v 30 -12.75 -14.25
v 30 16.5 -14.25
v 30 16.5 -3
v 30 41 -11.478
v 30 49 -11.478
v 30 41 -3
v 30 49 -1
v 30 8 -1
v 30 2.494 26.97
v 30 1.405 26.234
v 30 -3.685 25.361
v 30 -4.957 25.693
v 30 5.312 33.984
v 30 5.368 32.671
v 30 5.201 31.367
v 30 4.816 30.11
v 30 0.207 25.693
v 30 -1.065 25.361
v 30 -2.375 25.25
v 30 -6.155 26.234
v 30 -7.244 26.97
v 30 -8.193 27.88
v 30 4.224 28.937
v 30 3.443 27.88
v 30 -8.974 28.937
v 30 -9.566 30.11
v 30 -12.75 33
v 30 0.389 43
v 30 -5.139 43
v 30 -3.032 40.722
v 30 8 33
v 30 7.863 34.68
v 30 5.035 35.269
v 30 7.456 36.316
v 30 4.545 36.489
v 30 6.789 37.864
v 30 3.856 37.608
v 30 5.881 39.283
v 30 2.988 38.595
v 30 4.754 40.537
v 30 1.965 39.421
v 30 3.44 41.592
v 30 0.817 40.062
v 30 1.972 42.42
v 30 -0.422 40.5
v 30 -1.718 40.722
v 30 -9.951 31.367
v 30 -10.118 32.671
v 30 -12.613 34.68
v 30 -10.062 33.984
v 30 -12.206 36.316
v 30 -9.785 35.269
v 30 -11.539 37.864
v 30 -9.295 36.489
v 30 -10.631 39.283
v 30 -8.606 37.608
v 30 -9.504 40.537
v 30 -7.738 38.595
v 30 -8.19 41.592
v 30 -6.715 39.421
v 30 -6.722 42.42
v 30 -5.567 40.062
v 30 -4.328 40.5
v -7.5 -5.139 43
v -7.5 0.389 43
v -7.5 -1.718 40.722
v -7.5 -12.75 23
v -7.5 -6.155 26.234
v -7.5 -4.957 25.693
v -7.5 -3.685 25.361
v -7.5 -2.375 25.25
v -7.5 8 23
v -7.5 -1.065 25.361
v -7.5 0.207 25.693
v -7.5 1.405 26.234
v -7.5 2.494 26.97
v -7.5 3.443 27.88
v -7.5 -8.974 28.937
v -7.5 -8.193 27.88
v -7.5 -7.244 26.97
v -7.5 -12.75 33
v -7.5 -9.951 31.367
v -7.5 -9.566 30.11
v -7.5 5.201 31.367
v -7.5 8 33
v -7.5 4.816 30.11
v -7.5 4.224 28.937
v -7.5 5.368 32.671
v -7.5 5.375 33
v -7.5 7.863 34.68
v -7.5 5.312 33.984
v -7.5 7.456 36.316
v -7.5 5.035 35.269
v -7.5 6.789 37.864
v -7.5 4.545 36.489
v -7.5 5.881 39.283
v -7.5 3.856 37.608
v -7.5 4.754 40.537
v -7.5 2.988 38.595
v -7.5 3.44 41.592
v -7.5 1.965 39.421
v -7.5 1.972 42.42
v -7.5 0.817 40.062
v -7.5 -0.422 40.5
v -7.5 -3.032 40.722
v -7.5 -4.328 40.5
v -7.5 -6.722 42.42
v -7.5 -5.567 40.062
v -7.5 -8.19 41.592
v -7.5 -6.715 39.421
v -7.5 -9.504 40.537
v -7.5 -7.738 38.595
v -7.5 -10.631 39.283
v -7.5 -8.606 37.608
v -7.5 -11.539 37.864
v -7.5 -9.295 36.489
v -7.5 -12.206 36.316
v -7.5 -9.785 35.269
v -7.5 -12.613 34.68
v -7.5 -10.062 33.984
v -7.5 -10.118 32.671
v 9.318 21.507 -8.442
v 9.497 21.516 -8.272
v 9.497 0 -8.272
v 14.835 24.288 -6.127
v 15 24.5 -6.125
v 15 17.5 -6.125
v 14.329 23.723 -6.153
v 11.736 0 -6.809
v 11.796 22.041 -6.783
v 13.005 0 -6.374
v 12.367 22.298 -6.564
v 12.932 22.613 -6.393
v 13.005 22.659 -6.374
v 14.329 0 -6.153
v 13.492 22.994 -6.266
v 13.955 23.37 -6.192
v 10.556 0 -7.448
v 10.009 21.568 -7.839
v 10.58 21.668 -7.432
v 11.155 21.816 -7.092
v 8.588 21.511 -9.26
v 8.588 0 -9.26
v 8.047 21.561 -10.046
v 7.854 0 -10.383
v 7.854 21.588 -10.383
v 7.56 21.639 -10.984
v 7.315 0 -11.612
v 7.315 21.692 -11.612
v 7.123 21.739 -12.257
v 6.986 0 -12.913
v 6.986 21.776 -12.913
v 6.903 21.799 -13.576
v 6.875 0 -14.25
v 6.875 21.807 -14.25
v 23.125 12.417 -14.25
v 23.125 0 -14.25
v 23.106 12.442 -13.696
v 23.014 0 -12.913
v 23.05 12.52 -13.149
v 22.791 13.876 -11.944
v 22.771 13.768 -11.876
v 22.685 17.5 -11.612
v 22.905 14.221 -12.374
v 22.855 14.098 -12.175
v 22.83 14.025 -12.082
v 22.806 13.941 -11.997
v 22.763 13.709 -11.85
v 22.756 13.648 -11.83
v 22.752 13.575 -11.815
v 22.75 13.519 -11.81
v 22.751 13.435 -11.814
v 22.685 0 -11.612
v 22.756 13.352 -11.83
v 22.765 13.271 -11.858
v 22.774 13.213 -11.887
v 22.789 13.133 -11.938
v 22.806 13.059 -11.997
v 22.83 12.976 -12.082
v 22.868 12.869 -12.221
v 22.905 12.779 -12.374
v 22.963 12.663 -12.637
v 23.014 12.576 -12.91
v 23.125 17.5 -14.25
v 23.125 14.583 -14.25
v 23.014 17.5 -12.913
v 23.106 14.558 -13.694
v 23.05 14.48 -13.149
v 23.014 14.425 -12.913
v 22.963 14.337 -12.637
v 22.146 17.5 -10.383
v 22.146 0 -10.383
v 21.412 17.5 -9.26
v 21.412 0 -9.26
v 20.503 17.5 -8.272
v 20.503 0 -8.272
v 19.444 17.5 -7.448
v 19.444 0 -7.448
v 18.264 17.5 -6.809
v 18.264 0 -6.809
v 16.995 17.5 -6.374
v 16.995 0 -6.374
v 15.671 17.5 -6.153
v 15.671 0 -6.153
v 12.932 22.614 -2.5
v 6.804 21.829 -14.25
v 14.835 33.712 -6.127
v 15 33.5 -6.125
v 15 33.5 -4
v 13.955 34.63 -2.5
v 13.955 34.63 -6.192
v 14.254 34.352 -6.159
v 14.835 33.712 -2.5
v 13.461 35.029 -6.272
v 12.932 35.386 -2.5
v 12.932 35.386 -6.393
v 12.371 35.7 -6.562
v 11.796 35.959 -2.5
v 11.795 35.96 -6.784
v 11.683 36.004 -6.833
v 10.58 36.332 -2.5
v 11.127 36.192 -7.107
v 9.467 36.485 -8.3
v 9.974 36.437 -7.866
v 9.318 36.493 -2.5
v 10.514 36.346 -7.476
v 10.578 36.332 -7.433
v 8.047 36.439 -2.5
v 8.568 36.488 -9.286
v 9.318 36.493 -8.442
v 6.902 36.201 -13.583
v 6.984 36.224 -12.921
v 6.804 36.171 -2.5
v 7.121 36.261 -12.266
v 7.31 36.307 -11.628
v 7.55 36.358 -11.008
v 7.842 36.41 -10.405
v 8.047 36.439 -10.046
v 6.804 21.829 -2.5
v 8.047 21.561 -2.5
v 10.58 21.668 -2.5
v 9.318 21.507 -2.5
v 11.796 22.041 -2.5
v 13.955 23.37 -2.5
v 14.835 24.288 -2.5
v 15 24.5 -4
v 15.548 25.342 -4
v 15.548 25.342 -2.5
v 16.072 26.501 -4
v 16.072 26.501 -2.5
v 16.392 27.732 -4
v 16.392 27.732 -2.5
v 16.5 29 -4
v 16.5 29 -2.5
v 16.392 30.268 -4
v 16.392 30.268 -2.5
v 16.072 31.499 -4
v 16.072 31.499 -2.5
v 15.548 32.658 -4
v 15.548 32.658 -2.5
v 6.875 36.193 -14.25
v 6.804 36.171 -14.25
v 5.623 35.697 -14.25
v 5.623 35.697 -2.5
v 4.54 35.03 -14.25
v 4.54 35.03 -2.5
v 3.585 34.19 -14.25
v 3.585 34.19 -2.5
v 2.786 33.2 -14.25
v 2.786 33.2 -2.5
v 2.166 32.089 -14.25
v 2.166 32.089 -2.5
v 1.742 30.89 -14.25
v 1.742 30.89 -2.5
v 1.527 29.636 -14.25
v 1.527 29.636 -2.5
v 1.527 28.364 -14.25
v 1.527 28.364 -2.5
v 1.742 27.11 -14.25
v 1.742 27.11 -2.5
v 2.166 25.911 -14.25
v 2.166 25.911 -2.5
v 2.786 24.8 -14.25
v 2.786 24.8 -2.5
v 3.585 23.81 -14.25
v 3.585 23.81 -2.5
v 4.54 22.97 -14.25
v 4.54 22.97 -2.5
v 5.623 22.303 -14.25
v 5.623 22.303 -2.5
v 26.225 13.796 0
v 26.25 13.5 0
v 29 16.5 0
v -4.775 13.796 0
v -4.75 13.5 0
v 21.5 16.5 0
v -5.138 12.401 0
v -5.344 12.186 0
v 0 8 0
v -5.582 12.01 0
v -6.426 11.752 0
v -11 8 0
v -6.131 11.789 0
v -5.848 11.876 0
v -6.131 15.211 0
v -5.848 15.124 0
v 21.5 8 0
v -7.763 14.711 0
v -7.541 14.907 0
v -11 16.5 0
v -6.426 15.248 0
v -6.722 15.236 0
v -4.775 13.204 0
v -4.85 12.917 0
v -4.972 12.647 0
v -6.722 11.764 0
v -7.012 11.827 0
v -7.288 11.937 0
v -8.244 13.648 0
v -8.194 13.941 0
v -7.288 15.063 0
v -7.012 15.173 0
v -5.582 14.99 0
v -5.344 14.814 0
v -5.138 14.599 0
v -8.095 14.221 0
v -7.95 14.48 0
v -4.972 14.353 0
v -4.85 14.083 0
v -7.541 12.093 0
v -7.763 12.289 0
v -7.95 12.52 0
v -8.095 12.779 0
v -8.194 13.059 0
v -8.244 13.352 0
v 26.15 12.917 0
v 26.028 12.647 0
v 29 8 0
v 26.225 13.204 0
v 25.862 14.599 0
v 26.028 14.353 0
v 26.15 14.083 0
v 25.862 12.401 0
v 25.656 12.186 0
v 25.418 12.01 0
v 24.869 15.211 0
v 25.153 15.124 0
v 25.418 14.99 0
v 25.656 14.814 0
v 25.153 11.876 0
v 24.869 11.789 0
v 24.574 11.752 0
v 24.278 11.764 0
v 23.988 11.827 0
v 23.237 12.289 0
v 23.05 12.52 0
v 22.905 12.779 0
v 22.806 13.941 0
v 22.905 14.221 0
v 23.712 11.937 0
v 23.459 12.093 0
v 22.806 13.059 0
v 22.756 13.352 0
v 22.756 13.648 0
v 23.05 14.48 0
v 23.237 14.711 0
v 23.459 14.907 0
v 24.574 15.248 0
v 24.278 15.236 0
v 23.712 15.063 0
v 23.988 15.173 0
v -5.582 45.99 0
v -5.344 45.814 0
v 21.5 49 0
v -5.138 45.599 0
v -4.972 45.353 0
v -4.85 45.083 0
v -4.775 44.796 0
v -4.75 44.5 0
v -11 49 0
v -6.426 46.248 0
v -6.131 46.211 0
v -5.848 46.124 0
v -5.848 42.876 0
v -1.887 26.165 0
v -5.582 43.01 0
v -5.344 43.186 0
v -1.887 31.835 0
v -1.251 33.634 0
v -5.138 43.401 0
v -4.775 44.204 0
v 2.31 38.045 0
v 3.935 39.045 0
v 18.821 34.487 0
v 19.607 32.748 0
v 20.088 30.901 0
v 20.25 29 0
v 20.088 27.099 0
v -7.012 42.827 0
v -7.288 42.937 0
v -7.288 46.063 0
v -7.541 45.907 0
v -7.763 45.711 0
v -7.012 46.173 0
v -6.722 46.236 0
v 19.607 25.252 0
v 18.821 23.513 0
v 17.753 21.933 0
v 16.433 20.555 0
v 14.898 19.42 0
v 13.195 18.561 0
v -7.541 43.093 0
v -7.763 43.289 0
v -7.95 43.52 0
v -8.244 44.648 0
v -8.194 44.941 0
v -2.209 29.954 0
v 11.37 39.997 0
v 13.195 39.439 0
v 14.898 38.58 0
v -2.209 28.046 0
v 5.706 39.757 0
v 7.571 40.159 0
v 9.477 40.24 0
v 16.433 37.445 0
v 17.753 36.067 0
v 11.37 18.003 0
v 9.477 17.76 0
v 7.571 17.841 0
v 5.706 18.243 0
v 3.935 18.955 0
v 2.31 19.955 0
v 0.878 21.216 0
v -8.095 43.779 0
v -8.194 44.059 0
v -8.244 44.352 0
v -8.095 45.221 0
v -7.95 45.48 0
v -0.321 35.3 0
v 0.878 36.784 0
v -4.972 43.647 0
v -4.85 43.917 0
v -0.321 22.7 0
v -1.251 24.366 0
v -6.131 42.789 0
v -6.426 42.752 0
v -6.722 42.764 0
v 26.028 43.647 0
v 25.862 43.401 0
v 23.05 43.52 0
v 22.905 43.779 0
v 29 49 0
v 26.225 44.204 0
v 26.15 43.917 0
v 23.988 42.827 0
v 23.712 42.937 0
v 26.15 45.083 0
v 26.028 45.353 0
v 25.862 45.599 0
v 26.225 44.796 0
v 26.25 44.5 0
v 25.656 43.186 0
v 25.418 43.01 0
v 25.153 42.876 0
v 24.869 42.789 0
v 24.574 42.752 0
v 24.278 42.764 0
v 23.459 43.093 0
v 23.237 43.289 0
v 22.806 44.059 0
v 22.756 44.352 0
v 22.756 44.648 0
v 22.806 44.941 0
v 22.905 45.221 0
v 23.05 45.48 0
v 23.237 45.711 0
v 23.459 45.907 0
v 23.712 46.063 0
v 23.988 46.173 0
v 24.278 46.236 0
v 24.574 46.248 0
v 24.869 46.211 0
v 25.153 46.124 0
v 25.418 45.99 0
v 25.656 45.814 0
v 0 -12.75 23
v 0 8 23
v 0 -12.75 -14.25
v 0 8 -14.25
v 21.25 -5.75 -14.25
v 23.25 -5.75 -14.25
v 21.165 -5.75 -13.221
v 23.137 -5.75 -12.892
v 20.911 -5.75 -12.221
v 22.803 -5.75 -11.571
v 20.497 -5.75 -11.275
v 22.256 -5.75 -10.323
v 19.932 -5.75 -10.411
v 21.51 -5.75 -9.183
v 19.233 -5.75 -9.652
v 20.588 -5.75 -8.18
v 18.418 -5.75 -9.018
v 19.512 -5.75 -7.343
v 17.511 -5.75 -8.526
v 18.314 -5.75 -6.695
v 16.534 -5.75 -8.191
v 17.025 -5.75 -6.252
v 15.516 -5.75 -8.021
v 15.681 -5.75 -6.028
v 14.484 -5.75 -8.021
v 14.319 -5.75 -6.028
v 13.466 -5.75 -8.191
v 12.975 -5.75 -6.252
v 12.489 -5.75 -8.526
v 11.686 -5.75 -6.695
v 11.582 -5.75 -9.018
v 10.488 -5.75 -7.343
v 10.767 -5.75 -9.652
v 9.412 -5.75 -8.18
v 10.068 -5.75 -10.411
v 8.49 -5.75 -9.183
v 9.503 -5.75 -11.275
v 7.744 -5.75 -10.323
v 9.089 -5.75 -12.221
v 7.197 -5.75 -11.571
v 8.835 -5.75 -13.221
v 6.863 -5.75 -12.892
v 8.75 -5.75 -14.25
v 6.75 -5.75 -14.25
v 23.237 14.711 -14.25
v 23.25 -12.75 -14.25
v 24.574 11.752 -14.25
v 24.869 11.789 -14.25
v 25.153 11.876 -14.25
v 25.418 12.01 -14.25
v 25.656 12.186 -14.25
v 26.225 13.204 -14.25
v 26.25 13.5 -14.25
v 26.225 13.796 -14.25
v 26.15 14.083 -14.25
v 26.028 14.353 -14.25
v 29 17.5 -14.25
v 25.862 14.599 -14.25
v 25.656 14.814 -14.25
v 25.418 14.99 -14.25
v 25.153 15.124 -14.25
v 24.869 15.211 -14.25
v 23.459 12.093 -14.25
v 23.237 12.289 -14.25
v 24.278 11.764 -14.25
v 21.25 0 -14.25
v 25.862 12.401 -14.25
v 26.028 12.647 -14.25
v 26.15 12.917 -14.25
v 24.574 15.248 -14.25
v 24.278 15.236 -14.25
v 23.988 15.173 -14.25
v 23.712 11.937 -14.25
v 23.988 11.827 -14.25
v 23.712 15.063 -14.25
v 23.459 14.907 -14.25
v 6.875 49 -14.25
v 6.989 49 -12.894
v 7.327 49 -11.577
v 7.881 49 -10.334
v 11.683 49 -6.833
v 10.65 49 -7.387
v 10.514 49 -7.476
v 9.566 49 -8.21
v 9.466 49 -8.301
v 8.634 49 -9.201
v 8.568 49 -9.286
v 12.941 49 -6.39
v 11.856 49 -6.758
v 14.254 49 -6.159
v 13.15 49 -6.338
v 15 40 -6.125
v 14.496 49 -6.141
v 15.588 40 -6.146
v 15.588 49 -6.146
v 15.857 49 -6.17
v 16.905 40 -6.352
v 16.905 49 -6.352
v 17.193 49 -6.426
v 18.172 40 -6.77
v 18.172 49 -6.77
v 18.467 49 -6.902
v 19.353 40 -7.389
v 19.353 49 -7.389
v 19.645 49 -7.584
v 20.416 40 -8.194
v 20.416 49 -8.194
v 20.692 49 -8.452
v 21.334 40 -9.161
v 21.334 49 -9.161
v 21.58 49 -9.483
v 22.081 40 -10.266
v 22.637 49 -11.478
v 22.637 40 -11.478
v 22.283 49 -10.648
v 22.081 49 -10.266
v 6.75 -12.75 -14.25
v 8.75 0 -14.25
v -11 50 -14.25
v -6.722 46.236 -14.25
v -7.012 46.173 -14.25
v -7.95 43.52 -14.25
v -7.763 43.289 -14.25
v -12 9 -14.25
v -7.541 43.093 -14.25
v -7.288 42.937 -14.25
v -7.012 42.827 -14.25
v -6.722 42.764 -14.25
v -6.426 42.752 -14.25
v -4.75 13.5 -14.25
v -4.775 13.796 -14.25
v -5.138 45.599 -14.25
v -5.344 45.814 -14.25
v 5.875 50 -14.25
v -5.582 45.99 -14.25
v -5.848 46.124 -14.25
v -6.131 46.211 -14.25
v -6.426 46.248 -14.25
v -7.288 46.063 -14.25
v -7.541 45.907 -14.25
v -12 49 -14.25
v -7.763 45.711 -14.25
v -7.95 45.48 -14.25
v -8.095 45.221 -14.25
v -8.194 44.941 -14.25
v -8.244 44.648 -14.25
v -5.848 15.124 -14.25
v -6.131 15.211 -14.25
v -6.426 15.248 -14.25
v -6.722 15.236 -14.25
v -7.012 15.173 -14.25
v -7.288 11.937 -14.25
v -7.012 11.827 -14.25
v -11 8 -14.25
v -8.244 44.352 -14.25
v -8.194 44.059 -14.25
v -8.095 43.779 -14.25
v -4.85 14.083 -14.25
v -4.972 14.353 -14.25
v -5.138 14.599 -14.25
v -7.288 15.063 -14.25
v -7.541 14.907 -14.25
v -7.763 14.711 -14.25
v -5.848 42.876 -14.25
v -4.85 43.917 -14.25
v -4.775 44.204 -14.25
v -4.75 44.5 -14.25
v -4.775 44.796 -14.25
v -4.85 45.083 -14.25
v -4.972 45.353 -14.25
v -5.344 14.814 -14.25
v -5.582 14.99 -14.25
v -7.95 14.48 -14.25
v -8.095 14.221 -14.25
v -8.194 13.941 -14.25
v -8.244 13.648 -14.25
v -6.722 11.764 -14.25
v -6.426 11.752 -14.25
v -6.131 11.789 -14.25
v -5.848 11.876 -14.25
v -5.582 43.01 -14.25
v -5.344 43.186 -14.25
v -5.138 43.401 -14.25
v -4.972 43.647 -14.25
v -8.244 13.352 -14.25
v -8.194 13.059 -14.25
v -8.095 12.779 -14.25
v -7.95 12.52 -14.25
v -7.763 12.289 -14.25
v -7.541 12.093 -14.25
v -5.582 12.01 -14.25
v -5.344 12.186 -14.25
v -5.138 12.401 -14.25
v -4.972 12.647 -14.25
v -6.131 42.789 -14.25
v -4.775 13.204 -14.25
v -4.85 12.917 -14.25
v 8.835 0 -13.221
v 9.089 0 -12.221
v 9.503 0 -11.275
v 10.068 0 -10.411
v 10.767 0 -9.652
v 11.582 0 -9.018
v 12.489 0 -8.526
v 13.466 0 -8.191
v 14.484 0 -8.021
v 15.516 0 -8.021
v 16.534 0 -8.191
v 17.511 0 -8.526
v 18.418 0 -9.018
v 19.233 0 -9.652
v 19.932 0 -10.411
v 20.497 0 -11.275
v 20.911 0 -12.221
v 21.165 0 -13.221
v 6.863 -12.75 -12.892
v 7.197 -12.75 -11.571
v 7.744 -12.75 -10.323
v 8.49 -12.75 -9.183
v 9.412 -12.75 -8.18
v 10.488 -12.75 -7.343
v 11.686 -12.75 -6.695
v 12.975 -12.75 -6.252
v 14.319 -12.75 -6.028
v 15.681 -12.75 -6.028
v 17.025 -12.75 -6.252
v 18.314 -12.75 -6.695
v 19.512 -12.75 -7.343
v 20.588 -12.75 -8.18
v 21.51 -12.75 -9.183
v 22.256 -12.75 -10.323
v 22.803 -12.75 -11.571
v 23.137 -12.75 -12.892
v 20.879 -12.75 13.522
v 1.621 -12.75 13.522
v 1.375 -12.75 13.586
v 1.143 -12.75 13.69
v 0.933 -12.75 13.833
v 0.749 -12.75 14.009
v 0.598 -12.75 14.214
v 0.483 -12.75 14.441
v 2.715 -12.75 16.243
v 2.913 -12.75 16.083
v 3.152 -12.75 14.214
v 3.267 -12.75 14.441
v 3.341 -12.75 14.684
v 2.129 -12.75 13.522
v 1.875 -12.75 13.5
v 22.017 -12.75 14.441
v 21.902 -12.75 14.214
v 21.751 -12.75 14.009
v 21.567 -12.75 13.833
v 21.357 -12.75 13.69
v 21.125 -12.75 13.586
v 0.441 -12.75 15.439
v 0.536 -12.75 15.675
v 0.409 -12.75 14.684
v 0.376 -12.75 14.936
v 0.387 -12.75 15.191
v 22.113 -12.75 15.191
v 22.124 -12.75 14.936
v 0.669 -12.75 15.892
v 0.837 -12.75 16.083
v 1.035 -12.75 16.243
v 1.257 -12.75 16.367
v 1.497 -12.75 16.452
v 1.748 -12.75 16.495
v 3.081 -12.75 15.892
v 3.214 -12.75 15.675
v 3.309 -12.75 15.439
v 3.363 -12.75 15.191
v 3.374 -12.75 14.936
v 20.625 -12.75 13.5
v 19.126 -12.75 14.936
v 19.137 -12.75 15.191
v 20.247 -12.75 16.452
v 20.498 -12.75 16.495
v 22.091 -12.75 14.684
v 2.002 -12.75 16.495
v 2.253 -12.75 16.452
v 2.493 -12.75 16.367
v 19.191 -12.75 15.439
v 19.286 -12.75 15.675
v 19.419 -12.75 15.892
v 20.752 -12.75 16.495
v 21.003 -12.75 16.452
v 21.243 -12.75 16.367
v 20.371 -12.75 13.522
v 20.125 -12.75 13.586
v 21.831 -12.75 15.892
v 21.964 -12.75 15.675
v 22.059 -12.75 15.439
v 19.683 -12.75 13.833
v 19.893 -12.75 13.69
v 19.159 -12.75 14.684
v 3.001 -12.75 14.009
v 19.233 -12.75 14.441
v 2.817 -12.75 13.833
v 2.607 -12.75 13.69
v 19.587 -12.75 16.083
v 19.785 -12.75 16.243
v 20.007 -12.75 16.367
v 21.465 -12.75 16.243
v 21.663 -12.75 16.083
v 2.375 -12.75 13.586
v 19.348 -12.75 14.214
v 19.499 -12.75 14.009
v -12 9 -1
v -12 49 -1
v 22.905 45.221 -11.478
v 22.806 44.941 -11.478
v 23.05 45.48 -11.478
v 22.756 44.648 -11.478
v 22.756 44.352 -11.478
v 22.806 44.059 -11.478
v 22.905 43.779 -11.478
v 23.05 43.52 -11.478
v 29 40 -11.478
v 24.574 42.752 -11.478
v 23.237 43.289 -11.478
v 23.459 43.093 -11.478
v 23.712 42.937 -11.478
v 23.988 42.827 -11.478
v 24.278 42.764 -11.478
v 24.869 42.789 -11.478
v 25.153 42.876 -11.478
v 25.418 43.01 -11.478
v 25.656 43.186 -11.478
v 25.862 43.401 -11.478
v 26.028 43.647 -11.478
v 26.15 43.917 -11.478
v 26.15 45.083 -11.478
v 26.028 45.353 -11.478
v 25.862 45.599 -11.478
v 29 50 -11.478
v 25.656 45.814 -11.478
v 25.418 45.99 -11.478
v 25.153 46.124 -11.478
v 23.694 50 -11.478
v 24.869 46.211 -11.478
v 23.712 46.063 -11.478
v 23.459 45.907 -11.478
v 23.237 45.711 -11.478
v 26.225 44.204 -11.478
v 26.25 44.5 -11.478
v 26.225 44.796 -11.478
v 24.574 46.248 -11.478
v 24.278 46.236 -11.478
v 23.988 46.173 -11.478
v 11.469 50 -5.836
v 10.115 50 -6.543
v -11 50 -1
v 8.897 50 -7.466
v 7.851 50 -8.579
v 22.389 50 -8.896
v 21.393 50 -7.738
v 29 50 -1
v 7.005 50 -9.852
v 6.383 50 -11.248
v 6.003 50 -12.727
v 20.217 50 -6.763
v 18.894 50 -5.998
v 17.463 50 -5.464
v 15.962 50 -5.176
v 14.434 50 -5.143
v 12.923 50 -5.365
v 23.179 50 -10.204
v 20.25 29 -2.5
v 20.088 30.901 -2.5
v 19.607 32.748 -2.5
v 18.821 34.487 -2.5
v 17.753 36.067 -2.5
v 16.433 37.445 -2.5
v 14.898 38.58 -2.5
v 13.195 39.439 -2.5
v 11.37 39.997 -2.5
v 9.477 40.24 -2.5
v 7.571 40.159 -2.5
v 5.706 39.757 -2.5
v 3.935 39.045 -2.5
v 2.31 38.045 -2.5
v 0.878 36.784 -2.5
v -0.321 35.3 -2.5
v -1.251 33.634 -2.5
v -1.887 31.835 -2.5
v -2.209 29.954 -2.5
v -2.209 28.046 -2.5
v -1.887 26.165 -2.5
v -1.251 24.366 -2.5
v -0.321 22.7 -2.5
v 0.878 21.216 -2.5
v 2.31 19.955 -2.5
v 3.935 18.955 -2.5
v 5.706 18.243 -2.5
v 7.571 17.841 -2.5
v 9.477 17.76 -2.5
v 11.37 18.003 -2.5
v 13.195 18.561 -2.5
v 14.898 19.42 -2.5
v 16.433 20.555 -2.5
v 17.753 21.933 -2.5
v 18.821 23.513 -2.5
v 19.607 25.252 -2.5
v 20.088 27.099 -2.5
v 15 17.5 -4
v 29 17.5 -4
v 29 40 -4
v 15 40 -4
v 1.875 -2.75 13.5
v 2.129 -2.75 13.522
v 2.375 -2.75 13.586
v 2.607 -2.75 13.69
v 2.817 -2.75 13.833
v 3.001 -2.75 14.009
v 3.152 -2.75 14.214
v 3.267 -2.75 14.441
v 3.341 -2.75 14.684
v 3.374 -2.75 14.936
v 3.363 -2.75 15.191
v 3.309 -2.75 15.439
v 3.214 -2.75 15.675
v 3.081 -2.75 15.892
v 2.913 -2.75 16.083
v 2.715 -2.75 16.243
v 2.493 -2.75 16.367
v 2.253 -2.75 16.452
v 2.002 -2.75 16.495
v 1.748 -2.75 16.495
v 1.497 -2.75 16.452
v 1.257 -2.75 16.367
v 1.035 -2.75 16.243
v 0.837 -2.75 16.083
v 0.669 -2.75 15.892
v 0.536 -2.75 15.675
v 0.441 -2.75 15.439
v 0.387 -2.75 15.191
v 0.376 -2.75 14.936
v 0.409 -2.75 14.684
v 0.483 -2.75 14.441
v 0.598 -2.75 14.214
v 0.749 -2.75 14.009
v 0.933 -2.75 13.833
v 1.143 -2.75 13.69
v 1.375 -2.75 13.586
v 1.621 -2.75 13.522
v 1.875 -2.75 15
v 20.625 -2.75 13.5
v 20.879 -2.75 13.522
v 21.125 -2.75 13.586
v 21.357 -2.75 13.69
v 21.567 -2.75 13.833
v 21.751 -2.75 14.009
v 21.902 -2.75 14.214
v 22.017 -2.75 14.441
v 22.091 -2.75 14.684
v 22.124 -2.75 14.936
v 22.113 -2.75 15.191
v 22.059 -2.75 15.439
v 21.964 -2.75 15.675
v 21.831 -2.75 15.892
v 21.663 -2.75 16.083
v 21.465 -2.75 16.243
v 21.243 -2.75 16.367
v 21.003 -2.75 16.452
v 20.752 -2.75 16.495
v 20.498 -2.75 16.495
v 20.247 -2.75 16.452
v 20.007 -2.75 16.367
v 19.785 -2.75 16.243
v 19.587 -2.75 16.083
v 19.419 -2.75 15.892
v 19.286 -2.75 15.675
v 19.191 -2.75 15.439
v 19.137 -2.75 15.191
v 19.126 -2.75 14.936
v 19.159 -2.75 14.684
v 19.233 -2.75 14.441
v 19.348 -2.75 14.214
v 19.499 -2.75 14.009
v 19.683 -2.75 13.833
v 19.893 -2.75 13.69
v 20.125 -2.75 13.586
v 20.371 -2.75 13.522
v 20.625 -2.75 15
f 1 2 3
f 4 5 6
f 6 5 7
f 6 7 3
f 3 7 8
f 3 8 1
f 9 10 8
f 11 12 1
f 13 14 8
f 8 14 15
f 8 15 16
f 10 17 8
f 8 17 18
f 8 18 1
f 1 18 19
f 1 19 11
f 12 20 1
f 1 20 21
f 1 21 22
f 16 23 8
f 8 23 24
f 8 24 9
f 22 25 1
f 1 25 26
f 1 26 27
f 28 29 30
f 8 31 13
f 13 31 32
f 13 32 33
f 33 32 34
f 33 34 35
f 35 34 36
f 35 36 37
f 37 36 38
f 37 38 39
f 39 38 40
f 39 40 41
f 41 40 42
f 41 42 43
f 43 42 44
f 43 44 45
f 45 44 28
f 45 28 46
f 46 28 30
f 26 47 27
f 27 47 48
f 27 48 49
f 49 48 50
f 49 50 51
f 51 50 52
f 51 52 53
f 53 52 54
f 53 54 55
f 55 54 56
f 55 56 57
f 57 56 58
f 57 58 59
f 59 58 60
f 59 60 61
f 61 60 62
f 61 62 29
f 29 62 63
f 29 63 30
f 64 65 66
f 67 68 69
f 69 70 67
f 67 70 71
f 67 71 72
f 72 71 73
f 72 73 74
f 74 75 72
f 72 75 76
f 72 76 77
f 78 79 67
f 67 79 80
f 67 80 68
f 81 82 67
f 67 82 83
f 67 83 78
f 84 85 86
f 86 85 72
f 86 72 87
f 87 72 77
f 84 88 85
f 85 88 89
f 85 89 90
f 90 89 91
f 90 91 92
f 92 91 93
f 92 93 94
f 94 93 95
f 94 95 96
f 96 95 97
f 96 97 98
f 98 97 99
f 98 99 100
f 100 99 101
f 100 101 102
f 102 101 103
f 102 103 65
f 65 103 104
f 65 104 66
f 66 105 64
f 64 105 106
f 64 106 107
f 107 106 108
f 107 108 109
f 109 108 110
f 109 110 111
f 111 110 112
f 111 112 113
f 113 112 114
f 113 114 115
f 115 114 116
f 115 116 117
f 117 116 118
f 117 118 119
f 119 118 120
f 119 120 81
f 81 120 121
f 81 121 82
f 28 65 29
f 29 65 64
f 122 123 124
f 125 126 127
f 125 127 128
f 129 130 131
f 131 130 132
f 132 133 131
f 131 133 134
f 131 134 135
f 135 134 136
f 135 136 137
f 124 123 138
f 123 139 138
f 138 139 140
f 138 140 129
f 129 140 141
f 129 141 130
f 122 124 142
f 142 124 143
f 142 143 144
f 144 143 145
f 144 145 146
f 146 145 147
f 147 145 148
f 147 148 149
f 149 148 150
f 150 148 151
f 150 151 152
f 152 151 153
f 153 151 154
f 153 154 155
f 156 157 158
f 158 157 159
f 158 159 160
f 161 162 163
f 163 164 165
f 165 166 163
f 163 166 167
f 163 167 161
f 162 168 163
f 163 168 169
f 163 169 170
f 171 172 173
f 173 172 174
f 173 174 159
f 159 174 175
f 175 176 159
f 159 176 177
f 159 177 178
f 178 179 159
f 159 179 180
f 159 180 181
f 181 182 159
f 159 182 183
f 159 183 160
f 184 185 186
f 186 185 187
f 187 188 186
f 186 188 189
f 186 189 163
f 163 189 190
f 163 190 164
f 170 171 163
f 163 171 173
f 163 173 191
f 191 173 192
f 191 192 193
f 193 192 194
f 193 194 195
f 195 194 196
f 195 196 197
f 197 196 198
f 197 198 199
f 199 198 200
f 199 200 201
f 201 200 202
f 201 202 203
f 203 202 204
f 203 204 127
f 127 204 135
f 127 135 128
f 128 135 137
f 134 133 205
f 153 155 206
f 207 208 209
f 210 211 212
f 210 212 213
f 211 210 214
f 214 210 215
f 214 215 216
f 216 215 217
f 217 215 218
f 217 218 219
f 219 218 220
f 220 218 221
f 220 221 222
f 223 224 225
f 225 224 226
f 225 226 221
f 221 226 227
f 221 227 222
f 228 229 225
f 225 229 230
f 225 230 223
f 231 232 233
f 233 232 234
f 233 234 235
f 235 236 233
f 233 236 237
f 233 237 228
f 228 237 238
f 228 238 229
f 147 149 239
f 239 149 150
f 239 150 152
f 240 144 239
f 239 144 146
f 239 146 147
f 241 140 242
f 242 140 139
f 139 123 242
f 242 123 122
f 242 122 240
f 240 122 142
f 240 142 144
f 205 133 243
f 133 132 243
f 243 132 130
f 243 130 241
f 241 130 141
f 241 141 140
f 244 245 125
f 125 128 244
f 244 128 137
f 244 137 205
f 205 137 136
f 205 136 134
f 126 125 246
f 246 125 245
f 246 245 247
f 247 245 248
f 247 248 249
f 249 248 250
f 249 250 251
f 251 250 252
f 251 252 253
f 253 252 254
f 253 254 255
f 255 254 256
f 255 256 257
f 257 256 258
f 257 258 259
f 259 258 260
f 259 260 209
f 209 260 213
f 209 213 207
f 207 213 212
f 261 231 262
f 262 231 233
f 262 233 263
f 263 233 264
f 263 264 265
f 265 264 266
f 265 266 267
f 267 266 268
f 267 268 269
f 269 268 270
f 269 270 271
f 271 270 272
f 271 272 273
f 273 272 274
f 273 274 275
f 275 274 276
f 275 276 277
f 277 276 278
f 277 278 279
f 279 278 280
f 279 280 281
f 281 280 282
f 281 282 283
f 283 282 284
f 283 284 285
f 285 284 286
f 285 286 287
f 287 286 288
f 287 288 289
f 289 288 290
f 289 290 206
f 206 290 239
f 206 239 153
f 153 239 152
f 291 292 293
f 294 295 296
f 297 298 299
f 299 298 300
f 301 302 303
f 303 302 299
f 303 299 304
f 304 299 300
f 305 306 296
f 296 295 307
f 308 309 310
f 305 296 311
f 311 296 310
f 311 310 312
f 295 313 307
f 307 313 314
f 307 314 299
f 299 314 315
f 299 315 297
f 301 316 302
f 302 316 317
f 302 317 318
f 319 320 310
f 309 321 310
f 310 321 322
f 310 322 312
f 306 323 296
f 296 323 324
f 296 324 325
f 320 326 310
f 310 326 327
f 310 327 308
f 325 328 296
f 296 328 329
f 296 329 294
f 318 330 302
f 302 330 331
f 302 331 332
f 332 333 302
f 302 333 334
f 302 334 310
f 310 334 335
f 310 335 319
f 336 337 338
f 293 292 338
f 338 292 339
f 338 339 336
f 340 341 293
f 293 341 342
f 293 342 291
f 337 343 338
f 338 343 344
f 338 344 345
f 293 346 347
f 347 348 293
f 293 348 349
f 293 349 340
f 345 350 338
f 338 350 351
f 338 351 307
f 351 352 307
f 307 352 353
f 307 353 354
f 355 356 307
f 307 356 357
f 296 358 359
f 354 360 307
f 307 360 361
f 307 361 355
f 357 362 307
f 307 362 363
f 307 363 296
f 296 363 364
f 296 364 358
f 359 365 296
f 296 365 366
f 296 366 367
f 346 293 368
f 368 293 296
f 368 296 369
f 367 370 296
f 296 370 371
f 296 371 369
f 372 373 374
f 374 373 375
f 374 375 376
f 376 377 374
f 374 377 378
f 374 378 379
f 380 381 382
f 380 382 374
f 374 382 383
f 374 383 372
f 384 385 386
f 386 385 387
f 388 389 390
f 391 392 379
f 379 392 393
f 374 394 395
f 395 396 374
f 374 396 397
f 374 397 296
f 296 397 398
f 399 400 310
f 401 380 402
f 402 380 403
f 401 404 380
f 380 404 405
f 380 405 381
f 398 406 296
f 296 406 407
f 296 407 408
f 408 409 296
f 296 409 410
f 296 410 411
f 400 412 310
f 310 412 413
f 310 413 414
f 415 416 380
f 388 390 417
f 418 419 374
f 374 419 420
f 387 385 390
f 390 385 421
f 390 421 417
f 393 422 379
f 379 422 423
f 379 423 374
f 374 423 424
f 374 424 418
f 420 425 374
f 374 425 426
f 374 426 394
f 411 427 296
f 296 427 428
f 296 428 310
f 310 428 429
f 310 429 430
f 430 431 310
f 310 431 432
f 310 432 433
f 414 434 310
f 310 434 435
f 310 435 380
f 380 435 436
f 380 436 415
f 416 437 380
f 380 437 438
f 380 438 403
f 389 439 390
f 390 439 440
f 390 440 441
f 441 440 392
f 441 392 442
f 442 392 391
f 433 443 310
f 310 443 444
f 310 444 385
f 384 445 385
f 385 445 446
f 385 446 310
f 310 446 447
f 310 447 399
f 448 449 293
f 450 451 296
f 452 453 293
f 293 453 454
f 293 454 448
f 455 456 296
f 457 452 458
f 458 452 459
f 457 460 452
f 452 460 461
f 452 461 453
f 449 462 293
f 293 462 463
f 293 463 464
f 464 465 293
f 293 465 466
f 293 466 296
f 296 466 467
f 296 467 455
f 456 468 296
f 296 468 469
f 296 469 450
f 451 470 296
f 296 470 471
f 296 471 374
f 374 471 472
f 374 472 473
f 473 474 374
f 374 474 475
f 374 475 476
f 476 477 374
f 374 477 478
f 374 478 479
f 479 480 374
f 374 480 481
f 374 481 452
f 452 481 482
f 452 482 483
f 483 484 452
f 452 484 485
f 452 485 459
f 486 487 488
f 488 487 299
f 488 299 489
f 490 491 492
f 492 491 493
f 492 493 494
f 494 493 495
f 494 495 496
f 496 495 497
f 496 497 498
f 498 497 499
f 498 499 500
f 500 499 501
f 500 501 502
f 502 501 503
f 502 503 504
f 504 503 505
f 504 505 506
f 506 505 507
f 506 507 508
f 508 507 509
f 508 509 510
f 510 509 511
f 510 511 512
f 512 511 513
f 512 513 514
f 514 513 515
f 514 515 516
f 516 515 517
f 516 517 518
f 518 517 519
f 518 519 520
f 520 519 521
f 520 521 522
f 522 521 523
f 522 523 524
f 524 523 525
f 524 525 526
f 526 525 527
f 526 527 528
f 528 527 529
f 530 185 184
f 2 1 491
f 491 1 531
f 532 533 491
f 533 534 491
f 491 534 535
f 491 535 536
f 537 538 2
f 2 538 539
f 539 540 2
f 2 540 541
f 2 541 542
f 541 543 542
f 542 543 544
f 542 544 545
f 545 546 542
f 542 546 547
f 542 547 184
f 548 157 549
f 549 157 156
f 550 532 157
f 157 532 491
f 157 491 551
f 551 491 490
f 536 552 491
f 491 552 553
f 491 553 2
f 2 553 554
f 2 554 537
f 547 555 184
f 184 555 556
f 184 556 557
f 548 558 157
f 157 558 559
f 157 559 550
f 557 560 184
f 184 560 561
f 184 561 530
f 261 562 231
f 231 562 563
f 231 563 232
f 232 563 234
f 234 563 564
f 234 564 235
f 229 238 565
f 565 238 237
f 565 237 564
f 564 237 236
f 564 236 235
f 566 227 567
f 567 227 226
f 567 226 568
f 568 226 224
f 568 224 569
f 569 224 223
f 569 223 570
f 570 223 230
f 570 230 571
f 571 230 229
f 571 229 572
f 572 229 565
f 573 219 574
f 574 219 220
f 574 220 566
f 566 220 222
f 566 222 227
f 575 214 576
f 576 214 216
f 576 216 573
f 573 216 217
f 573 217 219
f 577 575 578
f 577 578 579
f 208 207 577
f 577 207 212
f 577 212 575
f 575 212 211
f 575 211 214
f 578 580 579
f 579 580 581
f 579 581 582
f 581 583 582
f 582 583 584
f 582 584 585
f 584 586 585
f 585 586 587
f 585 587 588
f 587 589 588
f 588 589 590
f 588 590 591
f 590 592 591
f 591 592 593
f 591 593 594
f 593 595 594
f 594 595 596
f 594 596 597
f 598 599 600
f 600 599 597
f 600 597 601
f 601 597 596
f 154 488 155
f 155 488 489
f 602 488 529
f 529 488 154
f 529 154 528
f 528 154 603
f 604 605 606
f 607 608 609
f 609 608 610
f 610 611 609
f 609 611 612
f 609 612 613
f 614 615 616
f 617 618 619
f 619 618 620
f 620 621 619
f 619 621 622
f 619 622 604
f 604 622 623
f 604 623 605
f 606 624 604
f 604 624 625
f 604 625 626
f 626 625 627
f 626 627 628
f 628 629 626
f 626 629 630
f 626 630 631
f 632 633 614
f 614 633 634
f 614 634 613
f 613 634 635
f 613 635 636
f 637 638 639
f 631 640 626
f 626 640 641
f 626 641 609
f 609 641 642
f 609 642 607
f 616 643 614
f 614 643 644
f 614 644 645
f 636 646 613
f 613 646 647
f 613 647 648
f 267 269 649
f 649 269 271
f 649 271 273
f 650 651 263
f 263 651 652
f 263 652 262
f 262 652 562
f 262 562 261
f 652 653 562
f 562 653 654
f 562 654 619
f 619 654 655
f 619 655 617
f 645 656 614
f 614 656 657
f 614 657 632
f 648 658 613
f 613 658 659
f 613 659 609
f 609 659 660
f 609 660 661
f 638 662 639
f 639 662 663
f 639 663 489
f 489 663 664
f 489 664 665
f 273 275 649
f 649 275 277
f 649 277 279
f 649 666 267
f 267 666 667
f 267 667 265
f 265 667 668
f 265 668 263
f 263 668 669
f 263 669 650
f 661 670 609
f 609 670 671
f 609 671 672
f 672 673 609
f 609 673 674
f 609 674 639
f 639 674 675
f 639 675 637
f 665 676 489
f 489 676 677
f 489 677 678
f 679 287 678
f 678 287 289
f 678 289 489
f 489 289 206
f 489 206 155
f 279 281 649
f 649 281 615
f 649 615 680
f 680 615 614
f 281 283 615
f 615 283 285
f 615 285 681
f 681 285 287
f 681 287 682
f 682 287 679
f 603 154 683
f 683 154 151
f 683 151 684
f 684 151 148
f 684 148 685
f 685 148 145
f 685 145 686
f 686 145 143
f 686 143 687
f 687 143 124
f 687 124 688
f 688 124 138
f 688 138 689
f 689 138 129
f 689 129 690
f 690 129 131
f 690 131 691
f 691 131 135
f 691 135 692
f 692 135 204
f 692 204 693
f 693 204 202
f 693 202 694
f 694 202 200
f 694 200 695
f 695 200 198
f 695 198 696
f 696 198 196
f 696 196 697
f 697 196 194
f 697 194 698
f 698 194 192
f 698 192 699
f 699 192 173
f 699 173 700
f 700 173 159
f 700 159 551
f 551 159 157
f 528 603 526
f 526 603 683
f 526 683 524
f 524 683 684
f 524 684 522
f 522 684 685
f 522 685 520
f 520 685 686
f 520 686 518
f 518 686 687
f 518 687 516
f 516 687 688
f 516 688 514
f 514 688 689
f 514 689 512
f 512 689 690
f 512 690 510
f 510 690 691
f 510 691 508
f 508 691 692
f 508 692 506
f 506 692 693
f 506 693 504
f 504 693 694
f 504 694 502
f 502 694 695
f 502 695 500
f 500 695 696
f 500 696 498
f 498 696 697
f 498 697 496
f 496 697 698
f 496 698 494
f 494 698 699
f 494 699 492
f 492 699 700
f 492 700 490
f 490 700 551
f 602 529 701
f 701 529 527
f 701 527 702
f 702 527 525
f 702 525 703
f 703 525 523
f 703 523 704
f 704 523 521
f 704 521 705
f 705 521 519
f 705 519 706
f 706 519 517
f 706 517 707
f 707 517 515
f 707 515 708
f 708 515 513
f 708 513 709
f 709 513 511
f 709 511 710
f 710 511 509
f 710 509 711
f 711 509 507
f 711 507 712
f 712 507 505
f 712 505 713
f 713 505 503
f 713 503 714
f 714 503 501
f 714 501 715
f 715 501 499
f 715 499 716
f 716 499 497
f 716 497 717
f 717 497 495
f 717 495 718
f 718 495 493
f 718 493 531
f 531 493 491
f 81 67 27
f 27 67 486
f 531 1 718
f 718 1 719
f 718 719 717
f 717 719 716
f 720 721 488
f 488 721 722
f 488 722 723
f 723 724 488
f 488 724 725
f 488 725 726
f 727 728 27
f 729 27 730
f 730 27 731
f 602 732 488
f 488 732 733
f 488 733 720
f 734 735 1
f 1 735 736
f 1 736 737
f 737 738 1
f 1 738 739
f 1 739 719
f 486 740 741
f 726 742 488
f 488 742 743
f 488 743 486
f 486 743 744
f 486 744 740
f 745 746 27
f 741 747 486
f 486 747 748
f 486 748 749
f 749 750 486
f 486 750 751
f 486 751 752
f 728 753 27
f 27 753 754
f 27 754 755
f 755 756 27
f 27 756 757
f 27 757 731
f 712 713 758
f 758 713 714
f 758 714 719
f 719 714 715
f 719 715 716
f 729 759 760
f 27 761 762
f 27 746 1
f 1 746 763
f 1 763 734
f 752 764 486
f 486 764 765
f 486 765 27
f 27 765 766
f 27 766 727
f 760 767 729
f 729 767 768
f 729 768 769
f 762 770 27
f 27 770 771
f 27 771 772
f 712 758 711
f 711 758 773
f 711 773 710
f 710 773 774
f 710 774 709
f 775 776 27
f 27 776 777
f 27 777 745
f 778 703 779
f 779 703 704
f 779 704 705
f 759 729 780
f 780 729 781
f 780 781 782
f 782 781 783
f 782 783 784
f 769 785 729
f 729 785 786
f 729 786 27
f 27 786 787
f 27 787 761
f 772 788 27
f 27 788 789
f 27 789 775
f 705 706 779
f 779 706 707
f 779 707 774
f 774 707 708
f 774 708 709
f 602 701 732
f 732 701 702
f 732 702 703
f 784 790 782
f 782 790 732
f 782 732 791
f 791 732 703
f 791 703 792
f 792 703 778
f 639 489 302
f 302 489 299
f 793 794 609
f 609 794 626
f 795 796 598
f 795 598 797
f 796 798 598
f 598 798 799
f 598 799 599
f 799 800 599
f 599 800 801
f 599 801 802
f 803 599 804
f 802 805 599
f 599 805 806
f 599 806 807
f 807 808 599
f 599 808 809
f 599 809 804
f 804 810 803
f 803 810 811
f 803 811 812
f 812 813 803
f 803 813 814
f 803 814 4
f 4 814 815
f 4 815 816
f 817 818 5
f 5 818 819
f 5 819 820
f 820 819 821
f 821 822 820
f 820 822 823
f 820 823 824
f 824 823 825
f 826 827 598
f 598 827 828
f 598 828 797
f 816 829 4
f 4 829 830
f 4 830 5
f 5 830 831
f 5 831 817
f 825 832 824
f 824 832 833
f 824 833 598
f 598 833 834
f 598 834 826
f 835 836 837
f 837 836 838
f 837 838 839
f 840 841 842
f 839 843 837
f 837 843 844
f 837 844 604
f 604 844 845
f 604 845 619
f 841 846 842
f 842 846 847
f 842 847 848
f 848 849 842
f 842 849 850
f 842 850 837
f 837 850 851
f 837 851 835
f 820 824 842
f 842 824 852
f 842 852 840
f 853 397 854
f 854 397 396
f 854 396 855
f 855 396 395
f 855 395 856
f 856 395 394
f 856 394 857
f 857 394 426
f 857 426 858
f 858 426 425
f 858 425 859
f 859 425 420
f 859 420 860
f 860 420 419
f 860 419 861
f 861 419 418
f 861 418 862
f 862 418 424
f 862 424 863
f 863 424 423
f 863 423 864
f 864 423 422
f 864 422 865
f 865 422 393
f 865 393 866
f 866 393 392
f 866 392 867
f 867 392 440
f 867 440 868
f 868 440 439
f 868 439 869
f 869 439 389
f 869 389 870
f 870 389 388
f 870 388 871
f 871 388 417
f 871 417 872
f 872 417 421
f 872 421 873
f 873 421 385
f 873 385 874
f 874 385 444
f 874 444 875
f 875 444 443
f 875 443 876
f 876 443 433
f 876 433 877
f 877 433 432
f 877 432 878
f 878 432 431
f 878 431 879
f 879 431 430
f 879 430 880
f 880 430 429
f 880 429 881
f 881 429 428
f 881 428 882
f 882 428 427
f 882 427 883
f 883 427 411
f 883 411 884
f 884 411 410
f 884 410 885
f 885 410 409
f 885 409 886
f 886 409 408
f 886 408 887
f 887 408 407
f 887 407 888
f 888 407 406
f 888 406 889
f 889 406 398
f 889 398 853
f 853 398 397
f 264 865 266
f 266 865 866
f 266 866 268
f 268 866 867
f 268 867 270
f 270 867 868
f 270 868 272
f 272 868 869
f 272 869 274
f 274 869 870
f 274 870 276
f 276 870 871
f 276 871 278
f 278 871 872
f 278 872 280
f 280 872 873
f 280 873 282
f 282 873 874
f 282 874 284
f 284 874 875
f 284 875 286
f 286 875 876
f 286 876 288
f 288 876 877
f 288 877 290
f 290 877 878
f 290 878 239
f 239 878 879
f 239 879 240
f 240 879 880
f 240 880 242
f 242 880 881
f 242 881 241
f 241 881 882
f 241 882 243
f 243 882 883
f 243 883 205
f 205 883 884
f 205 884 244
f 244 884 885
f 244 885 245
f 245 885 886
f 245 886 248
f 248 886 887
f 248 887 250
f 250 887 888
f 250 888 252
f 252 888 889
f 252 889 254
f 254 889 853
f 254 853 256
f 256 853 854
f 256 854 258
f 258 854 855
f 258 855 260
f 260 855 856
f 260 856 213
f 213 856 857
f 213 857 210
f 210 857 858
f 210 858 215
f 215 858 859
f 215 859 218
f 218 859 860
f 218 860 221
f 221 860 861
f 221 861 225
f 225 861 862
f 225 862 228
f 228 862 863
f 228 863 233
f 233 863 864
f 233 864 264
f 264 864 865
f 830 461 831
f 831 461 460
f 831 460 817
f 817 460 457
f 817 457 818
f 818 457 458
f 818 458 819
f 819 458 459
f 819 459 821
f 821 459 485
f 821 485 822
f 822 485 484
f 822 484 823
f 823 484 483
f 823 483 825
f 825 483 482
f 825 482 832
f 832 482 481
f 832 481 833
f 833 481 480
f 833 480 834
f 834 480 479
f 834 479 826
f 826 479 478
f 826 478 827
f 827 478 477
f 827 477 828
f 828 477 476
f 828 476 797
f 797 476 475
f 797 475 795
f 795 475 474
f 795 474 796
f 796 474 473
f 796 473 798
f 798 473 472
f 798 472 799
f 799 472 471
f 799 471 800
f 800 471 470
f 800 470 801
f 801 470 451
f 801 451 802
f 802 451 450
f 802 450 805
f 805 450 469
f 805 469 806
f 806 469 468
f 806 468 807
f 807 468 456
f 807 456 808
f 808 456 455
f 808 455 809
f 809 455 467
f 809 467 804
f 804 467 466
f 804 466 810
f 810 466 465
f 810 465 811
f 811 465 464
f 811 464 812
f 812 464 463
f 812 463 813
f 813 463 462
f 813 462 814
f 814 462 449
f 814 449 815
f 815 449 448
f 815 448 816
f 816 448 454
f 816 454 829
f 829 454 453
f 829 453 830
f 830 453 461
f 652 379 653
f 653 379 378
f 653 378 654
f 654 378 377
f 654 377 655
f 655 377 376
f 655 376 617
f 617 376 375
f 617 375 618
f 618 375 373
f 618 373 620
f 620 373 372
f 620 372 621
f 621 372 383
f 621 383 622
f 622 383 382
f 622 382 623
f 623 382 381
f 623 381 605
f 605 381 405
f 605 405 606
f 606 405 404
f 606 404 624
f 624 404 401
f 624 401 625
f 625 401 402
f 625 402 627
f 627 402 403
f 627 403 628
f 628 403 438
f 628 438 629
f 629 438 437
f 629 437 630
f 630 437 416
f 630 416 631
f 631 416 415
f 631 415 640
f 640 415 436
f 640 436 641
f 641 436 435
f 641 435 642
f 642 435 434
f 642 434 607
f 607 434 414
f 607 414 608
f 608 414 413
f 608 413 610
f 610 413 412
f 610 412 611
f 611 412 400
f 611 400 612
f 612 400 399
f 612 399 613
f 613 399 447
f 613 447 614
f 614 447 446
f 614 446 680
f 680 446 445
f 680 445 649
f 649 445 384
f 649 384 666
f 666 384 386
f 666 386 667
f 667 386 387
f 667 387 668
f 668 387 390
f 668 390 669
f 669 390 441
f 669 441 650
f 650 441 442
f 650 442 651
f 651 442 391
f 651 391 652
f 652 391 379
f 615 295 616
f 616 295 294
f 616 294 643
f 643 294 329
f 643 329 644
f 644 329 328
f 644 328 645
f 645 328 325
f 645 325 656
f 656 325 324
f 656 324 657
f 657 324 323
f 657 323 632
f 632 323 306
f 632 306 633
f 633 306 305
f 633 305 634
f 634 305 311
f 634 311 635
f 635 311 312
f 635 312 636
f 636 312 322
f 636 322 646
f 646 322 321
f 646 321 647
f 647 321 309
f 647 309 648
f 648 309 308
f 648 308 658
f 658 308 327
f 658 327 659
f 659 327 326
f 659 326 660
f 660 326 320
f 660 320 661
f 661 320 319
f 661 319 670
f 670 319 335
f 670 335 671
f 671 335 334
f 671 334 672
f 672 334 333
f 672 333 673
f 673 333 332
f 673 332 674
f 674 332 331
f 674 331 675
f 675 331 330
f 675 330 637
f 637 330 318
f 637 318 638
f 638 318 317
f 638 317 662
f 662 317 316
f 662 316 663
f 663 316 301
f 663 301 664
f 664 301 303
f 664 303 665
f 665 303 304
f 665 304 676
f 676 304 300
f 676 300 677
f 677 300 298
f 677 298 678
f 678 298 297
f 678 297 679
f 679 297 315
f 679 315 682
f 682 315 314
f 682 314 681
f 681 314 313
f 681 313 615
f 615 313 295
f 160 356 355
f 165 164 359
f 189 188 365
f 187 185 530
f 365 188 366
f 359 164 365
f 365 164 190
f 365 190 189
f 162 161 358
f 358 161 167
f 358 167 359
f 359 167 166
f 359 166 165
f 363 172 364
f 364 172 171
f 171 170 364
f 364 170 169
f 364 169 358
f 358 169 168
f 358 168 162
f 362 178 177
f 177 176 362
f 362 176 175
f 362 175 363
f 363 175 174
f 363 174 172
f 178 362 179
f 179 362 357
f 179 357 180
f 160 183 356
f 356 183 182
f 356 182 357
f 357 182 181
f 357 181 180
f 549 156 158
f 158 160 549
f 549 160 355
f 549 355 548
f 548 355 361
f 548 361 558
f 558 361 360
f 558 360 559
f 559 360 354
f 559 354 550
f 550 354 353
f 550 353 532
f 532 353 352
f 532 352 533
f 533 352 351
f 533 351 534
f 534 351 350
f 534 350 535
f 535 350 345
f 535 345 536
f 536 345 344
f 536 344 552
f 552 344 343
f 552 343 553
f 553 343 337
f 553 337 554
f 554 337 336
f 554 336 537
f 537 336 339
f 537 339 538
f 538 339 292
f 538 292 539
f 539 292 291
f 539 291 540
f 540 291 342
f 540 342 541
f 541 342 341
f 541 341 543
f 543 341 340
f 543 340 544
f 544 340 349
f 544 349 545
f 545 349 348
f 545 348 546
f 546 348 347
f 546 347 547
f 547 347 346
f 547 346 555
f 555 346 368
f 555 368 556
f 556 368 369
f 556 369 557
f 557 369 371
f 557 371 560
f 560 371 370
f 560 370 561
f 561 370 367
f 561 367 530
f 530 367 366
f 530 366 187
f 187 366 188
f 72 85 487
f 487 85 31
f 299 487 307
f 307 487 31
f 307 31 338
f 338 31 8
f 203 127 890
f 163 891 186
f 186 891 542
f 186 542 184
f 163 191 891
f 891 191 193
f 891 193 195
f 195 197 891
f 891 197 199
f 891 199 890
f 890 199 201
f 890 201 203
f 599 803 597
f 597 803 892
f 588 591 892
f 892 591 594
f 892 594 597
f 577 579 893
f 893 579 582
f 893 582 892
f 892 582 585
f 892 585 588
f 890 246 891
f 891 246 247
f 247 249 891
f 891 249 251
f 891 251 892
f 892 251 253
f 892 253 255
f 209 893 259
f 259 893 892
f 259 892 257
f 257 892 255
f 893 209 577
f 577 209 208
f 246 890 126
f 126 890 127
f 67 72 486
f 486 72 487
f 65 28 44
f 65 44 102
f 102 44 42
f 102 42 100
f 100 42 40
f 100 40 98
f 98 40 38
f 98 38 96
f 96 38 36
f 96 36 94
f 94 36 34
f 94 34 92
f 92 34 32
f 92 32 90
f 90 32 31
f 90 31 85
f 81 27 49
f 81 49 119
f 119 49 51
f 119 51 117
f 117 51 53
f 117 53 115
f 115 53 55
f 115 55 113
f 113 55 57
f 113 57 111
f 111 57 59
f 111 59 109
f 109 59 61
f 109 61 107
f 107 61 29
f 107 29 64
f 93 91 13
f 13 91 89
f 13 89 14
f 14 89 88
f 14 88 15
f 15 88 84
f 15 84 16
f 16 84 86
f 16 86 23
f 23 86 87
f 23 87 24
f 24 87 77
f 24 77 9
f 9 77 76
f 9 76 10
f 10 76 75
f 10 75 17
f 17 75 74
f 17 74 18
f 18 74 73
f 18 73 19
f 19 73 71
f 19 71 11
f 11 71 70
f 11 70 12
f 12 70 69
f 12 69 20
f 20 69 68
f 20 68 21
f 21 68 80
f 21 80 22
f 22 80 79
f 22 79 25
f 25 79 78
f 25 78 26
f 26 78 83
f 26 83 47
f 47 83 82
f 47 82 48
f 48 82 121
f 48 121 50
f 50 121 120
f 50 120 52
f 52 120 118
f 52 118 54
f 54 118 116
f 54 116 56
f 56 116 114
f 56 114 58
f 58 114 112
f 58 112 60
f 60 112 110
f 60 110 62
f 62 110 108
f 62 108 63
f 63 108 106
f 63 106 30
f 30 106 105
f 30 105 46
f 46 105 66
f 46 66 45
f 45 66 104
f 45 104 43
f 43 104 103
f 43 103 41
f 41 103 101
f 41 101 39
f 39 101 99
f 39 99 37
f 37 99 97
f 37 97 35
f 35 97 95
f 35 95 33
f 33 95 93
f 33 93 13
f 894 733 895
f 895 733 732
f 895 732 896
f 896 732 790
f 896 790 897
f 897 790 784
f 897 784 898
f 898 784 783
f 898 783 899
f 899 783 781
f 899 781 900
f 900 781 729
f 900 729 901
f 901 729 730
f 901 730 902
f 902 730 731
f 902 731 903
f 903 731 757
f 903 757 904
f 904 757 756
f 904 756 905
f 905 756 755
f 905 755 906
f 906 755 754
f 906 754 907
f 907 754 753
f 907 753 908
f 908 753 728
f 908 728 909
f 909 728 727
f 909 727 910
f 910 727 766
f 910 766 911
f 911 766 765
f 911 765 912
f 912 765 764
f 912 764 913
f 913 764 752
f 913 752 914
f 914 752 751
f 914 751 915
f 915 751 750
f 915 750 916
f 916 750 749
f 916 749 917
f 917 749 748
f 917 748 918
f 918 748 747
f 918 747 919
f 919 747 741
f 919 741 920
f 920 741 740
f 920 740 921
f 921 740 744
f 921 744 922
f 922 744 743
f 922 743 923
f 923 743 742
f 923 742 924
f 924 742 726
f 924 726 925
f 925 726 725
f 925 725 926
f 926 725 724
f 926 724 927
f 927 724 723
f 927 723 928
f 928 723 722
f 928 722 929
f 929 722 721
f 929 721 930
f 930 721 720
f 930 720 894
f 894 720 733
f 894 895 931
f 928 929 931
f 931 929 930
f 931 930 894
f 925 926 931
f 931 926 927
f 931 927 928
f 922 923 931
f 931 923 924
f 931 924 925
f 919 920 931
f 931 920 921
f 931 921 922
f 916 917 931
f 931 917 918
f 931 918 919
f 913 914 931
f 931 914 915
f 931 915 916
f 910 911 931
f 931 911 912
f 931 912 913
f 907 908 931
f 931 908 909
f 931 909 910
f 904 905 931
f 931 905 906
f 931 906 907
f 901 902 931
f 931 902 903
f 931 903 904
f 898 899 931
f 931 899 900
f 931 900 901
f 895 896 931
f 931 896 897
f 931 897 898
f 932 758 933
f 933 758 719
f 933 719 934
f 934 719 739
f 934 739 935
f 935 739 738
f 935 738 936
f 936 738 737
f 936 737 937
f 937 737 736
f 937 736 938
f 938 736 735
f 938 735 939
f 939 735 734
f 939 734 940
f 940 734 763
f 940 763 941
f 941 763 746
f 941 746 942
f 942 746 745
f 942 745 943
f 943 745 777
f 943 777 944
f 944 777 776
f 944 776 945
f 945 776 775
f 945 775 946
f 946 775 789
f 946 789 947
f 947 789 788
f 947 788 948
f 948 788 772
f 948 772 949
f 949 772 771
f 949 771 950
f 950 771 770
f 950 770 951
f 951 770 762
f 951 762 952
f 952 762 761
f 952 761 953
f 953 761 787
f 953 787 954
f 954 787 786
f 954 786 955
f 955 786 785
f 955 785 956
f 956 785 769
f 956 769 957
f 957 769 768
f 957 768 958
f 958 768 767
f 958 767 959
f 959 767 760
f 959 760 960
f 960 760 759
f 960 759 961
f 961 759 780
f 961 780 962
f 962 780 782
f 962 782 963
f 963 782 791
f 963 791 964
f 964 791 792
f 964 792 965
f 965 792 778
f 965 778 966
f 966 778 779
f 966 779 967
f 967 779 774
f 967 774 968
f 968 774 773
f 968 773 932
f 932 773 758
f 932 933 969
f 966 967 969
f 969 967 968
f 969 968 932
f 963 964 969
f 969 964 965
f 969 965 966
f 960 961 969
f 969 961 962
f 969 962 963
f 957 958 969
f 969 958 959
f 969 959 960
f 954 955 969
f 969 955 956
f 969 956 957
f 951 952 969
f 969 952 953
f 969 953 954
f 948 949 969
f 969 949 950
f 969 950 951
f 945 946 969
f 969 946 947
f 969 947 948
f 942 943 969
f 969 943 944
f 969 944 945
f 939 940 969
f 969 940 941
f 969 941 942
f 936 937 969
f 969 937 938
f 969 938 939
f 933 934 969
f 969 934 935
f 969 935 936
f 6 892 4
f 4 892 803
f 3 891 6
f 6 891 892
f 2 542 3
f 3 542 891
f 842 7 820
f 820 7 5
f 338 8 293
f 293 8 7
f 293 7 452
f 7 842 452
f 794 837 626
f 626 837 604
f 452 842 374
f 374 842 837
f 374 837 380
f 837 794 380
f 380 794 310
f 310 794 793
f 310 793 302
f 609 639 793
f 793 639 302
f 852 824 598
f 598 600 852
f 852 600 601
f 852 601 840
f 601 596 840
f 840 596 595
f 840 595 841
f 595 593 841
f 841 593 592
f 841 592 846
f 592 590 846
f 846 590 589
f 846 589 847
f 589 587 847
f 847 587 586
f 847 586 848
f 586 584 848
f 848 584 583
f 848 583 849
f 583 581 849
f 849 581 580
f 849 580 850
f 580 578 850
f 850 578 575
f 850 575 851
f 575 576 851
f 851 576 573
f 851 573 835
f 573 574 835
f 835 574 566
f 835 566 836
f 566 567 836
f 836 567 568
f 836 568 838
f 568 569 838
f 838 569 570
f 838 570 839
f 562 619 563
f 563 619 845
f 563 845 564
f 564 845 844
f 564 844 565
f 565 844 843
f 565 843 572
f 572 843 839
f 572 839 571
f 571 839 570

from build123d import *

# Parameters (mm, degrees)
BOSS_EXTRUDE1_DEPTH = 21
BOSS_EXTRUDE2_DEPTH = 5.75
BOSS_EXTRUDE3_DEPTH = 7
SKETCH6_W           = 14.25
SKETCH6_H           = 13
BOSS_EXTRUDE4_DEPTH = 12
BOSS_EXTRUDE5_DEPTH = 29
SKETCH8_R           = 11.25
CUT_EXTRUDE1_DEPTH  = 2.5
SKETCH9_R           = 1.75
SKETCH9_R_2         = 7.5
CUT_EXTRUDE2_DEPTH  = 15.25
SKETCH10_W          = 30
SKETCH10_H          = 20.75
BOSS_EXTRUDE6_DEPTH = 23
CUT_EXTRUDE4_DEPTH  = 15
SKETCH12_W          = 37.5
SKETCH12_H          = 20.75
BOSS_EXTRUDE7_DEPTH = 20
SKETCH13_R          = 7.75
CUT_EXTRUDE5_DEPTH  = 43
SKETCH14_R          = 1.5
CUT_EXTRUDE6_DEPTH  = 10
CHAMFER1_SIZE       = 1


with BuildPart() as part:
    # Sketch1 → Boss-Extrude1 (new body)
    with BuildSketch(Plane(origin=(0, 0, 0), x_dir=(1, 0, 0), z_dir=(0, 1, 0))):
        with BuildLine():
            Line((23.125, 14.25), (30, 14.25))
            Line((30, 14.25), (30, 0))
            Line((30, 0), (0, 0))
            Line((0, 0), (0, 14.25))
            Line((0, 14.25), (6.875, 14.25))
            ThreePointArc((6.875, 14.25), (15, 6.125), (23.125, 14.25))
        make_face()
    extrude(amount=BOSS_EXTRUDE1_DEPTH)

    # Sketch2 → Boss-Extrude2 (add)
    with BuildSketch(Plane.XZ):
        with BuildLine():
            Line((21.25, -14.25), (30, -14.25))
            Line((30, -14.25), (30, 0))
            Line((30, 0), (0, 0))
            Line((0, 0), (0, -14.25))
            Line((0, -14.25), (8.75, -14.25))
            ThreePointArc((8.75, -14.25), (15, -8), (21.25, -14.25))
        make_face()
    extrude(amount=BOSS_EXTRUDE2_DEPTH)

    # Sketch3 → Boss-Extrude3 (add)
    with BuildSketch(Plane.XZ.offset(5.75)):
        with BuildLine():
            Line((23.25, -14.25), (30, -14.25))
            Line((30, -14.25), (30, 0))
            Line((30, 0), (0, 0))
            Line((0, 0), (0, -14.25))
            Line((0, -14.25), (6.75, -14.25))
            ThreePointArc((6.75, -14.25), (15, -6), (23.25, -14.25))
        make_face()
    extrude(amount=BOSS_EXTRUDE3_DEPTH)

    # Sketch6 → Boss-Extrude4 (add)
    with BuildSketch(Plane.ZY):
        with Locations((-7.125, 14.5)):
            Rectangle(SKETCH6_W, SKETCH6_H)
    extrude(amount=BOSS_EXTRUDE4_DEPTH)

    # Sketch7 → Boss-Extrude5 (add)
    with BuildSketch(Plane(origin=(0, 21, 0), x_dir=(1, 0, 0), z_dir=(0, 1, 0))):
        with BuildLine():
            Line((-12, 0), (30, 0))
            Line((30, 0), (30, 5.621629424))
            Line((30, 5.621629424), (30, 11.47775747))
            Line((30, 11.47775747), (24.530058266, 11.47775747))
            Line((24.530058266, 11.47775747), (22.637427339, 11.47775747))
            ThreePointArc((22.637427339, 11.47775747), (13.592603845, 6.24782148), (6.875, 14.25))
            Line((6.875, 14.25), (0.717619185, 14.25))
            Line((0.717619185, 14.25), (-12, 14.25))
            Line((-12, 14.25), (-12, 5.621629424))
            Line((-12, 5.621629424), (-12, 0))
        make_face()
    extrude(amount=BOSS_EXTRUDE5_DEPTH)

    # Sketch8 → Cut-Extrude1 (cut)
    with BuildSketch(Plane.XY):
        with Locations((9, 29)):
            Circle(SKETCH8_R)
    extrude(amount=-CUT_EXTRUDE1_DEPTH, mode=Mode.SUBTRACT)

    # Sketch9 → Cut-Extrude2 (cut, through all)
    with BuildSketch(Plane.XY):
        with Locations((-6.5, 44.5)):
            Circle(SKETCH9_R)
        with Locations((-6.5, 13.5)):
            Circle(SKETCH9_R)
        with Locations((24.5, 13.5)):
            Circle(SKETCH9_R)
        with Locations((24.5, 44.5)):
            Circle(SKETCH9_R)
        with Locations((9, 29)):
            Circle(SKETCH9_R_2)
    extrude(amount=-CUT_EXTRUDE2_DEPTH, mode=Mode.SUBTRACT)

    # Sketch10 → Boss-Extrude6 (add)
    with BuildSketch(Plane.XY):
        with Locations((15, -2.375)):
            Rectangle(SKETCH10_W, SKETCH10_H)
    extrude(amount=BOSS_EXTRUDE6_DEPTH)

    # Sketch11 → Cut-Extrude4 (cut)
    with BuildSketch(Plane(origin=(30, 0, 0), x_dir=(0, 0, -1), z_dir=(1, 0, 0))):
        Polygon((11.47775747, 17.5), (4, 17.5), (4, 40), (11.47775747, 40), (11.47775747, 21), (14.25, 21), (14.25, 17.5), align=None)
    extrude(amount=-CUT_EXTRUDE4_DEPTH, mode=Mode.SUBTRACT)

    # Sketch12 → Boss-Extrude7 (add)
    with BuildSketch(Plane.XY.offset(23)):
        with Locations((11.25, -2.375)):
            Rectangle(SKETCH12_W, SKETCH12_H)
    extrude(amount=BOSS_EXTRUDE7_DEPTH)

    # Sketch13 → Cut-Extrude5 (cut, through all)
    with BuildSketch(Plane(origin=(30, 0, 0), x_dir=(0, 0, -1), z_dir=(1, 0, 0))):
        with BuildLine():
            ThreePointArc((-43, 0.389168048), (-39.283405983, 5.880872713), (-33, 8))
            Line((-33, 8), (-43, 8))
            Line((-43, 8), (-43, 0.389168048))
        make_face()
        with BuildLine():
            ThreePointArc((-33, -12.75), (-39.283405983, -10.630872713), (-43, -5.139168048))
            Line((-43, -5.139168048), (-43, -12.75))
            Line((-43, -12.75), (-33, -12.75))
        make_face()
        with Locations((-33, -2.375)):
            Circle(SKETCH13_R)
    extrude(amount=-CUT_EXTRUDE5_DEPTH, mode=Mode.SUBTRACT)

    # Sketch14 → Cut-Extrude6 (cut)
    with BuildSketch(Plane(origin=(0, -12.75, 0), x_dir=(-1, 0, 0), z_dir=(0, -1, 0))):
        with Locations((-20.625, -15)):
            Circle(SKETCH14_R)
        with Locations((-1.875, -15)):
            Circle(SKETCH14_R)
    extrude(amount=-CUT_EXTRUDE6_DEPTH, mode=Mode.SUBTRACT)

    # Chamfer1
    chamfer1_edges = [part.edges().sort_by_distance(p)[0] for p in [
        (30, 29, 0),
        (30, 17.5, -9.125),
        (30, 40, -7.738878735),
        (30, 28.75, -4),
        (-12, 29, 0),
        (-12, 8, -7.125),
        (-12, 50, -7.125),
        (13.592603845, 50, -6.24782148),
        (30, 50, -5.738878735),
        (9, 50, 0),
    ]]
    chamfer(chamfer1_edges, length=CHAMFER1_SIZE)


solid = part.part
